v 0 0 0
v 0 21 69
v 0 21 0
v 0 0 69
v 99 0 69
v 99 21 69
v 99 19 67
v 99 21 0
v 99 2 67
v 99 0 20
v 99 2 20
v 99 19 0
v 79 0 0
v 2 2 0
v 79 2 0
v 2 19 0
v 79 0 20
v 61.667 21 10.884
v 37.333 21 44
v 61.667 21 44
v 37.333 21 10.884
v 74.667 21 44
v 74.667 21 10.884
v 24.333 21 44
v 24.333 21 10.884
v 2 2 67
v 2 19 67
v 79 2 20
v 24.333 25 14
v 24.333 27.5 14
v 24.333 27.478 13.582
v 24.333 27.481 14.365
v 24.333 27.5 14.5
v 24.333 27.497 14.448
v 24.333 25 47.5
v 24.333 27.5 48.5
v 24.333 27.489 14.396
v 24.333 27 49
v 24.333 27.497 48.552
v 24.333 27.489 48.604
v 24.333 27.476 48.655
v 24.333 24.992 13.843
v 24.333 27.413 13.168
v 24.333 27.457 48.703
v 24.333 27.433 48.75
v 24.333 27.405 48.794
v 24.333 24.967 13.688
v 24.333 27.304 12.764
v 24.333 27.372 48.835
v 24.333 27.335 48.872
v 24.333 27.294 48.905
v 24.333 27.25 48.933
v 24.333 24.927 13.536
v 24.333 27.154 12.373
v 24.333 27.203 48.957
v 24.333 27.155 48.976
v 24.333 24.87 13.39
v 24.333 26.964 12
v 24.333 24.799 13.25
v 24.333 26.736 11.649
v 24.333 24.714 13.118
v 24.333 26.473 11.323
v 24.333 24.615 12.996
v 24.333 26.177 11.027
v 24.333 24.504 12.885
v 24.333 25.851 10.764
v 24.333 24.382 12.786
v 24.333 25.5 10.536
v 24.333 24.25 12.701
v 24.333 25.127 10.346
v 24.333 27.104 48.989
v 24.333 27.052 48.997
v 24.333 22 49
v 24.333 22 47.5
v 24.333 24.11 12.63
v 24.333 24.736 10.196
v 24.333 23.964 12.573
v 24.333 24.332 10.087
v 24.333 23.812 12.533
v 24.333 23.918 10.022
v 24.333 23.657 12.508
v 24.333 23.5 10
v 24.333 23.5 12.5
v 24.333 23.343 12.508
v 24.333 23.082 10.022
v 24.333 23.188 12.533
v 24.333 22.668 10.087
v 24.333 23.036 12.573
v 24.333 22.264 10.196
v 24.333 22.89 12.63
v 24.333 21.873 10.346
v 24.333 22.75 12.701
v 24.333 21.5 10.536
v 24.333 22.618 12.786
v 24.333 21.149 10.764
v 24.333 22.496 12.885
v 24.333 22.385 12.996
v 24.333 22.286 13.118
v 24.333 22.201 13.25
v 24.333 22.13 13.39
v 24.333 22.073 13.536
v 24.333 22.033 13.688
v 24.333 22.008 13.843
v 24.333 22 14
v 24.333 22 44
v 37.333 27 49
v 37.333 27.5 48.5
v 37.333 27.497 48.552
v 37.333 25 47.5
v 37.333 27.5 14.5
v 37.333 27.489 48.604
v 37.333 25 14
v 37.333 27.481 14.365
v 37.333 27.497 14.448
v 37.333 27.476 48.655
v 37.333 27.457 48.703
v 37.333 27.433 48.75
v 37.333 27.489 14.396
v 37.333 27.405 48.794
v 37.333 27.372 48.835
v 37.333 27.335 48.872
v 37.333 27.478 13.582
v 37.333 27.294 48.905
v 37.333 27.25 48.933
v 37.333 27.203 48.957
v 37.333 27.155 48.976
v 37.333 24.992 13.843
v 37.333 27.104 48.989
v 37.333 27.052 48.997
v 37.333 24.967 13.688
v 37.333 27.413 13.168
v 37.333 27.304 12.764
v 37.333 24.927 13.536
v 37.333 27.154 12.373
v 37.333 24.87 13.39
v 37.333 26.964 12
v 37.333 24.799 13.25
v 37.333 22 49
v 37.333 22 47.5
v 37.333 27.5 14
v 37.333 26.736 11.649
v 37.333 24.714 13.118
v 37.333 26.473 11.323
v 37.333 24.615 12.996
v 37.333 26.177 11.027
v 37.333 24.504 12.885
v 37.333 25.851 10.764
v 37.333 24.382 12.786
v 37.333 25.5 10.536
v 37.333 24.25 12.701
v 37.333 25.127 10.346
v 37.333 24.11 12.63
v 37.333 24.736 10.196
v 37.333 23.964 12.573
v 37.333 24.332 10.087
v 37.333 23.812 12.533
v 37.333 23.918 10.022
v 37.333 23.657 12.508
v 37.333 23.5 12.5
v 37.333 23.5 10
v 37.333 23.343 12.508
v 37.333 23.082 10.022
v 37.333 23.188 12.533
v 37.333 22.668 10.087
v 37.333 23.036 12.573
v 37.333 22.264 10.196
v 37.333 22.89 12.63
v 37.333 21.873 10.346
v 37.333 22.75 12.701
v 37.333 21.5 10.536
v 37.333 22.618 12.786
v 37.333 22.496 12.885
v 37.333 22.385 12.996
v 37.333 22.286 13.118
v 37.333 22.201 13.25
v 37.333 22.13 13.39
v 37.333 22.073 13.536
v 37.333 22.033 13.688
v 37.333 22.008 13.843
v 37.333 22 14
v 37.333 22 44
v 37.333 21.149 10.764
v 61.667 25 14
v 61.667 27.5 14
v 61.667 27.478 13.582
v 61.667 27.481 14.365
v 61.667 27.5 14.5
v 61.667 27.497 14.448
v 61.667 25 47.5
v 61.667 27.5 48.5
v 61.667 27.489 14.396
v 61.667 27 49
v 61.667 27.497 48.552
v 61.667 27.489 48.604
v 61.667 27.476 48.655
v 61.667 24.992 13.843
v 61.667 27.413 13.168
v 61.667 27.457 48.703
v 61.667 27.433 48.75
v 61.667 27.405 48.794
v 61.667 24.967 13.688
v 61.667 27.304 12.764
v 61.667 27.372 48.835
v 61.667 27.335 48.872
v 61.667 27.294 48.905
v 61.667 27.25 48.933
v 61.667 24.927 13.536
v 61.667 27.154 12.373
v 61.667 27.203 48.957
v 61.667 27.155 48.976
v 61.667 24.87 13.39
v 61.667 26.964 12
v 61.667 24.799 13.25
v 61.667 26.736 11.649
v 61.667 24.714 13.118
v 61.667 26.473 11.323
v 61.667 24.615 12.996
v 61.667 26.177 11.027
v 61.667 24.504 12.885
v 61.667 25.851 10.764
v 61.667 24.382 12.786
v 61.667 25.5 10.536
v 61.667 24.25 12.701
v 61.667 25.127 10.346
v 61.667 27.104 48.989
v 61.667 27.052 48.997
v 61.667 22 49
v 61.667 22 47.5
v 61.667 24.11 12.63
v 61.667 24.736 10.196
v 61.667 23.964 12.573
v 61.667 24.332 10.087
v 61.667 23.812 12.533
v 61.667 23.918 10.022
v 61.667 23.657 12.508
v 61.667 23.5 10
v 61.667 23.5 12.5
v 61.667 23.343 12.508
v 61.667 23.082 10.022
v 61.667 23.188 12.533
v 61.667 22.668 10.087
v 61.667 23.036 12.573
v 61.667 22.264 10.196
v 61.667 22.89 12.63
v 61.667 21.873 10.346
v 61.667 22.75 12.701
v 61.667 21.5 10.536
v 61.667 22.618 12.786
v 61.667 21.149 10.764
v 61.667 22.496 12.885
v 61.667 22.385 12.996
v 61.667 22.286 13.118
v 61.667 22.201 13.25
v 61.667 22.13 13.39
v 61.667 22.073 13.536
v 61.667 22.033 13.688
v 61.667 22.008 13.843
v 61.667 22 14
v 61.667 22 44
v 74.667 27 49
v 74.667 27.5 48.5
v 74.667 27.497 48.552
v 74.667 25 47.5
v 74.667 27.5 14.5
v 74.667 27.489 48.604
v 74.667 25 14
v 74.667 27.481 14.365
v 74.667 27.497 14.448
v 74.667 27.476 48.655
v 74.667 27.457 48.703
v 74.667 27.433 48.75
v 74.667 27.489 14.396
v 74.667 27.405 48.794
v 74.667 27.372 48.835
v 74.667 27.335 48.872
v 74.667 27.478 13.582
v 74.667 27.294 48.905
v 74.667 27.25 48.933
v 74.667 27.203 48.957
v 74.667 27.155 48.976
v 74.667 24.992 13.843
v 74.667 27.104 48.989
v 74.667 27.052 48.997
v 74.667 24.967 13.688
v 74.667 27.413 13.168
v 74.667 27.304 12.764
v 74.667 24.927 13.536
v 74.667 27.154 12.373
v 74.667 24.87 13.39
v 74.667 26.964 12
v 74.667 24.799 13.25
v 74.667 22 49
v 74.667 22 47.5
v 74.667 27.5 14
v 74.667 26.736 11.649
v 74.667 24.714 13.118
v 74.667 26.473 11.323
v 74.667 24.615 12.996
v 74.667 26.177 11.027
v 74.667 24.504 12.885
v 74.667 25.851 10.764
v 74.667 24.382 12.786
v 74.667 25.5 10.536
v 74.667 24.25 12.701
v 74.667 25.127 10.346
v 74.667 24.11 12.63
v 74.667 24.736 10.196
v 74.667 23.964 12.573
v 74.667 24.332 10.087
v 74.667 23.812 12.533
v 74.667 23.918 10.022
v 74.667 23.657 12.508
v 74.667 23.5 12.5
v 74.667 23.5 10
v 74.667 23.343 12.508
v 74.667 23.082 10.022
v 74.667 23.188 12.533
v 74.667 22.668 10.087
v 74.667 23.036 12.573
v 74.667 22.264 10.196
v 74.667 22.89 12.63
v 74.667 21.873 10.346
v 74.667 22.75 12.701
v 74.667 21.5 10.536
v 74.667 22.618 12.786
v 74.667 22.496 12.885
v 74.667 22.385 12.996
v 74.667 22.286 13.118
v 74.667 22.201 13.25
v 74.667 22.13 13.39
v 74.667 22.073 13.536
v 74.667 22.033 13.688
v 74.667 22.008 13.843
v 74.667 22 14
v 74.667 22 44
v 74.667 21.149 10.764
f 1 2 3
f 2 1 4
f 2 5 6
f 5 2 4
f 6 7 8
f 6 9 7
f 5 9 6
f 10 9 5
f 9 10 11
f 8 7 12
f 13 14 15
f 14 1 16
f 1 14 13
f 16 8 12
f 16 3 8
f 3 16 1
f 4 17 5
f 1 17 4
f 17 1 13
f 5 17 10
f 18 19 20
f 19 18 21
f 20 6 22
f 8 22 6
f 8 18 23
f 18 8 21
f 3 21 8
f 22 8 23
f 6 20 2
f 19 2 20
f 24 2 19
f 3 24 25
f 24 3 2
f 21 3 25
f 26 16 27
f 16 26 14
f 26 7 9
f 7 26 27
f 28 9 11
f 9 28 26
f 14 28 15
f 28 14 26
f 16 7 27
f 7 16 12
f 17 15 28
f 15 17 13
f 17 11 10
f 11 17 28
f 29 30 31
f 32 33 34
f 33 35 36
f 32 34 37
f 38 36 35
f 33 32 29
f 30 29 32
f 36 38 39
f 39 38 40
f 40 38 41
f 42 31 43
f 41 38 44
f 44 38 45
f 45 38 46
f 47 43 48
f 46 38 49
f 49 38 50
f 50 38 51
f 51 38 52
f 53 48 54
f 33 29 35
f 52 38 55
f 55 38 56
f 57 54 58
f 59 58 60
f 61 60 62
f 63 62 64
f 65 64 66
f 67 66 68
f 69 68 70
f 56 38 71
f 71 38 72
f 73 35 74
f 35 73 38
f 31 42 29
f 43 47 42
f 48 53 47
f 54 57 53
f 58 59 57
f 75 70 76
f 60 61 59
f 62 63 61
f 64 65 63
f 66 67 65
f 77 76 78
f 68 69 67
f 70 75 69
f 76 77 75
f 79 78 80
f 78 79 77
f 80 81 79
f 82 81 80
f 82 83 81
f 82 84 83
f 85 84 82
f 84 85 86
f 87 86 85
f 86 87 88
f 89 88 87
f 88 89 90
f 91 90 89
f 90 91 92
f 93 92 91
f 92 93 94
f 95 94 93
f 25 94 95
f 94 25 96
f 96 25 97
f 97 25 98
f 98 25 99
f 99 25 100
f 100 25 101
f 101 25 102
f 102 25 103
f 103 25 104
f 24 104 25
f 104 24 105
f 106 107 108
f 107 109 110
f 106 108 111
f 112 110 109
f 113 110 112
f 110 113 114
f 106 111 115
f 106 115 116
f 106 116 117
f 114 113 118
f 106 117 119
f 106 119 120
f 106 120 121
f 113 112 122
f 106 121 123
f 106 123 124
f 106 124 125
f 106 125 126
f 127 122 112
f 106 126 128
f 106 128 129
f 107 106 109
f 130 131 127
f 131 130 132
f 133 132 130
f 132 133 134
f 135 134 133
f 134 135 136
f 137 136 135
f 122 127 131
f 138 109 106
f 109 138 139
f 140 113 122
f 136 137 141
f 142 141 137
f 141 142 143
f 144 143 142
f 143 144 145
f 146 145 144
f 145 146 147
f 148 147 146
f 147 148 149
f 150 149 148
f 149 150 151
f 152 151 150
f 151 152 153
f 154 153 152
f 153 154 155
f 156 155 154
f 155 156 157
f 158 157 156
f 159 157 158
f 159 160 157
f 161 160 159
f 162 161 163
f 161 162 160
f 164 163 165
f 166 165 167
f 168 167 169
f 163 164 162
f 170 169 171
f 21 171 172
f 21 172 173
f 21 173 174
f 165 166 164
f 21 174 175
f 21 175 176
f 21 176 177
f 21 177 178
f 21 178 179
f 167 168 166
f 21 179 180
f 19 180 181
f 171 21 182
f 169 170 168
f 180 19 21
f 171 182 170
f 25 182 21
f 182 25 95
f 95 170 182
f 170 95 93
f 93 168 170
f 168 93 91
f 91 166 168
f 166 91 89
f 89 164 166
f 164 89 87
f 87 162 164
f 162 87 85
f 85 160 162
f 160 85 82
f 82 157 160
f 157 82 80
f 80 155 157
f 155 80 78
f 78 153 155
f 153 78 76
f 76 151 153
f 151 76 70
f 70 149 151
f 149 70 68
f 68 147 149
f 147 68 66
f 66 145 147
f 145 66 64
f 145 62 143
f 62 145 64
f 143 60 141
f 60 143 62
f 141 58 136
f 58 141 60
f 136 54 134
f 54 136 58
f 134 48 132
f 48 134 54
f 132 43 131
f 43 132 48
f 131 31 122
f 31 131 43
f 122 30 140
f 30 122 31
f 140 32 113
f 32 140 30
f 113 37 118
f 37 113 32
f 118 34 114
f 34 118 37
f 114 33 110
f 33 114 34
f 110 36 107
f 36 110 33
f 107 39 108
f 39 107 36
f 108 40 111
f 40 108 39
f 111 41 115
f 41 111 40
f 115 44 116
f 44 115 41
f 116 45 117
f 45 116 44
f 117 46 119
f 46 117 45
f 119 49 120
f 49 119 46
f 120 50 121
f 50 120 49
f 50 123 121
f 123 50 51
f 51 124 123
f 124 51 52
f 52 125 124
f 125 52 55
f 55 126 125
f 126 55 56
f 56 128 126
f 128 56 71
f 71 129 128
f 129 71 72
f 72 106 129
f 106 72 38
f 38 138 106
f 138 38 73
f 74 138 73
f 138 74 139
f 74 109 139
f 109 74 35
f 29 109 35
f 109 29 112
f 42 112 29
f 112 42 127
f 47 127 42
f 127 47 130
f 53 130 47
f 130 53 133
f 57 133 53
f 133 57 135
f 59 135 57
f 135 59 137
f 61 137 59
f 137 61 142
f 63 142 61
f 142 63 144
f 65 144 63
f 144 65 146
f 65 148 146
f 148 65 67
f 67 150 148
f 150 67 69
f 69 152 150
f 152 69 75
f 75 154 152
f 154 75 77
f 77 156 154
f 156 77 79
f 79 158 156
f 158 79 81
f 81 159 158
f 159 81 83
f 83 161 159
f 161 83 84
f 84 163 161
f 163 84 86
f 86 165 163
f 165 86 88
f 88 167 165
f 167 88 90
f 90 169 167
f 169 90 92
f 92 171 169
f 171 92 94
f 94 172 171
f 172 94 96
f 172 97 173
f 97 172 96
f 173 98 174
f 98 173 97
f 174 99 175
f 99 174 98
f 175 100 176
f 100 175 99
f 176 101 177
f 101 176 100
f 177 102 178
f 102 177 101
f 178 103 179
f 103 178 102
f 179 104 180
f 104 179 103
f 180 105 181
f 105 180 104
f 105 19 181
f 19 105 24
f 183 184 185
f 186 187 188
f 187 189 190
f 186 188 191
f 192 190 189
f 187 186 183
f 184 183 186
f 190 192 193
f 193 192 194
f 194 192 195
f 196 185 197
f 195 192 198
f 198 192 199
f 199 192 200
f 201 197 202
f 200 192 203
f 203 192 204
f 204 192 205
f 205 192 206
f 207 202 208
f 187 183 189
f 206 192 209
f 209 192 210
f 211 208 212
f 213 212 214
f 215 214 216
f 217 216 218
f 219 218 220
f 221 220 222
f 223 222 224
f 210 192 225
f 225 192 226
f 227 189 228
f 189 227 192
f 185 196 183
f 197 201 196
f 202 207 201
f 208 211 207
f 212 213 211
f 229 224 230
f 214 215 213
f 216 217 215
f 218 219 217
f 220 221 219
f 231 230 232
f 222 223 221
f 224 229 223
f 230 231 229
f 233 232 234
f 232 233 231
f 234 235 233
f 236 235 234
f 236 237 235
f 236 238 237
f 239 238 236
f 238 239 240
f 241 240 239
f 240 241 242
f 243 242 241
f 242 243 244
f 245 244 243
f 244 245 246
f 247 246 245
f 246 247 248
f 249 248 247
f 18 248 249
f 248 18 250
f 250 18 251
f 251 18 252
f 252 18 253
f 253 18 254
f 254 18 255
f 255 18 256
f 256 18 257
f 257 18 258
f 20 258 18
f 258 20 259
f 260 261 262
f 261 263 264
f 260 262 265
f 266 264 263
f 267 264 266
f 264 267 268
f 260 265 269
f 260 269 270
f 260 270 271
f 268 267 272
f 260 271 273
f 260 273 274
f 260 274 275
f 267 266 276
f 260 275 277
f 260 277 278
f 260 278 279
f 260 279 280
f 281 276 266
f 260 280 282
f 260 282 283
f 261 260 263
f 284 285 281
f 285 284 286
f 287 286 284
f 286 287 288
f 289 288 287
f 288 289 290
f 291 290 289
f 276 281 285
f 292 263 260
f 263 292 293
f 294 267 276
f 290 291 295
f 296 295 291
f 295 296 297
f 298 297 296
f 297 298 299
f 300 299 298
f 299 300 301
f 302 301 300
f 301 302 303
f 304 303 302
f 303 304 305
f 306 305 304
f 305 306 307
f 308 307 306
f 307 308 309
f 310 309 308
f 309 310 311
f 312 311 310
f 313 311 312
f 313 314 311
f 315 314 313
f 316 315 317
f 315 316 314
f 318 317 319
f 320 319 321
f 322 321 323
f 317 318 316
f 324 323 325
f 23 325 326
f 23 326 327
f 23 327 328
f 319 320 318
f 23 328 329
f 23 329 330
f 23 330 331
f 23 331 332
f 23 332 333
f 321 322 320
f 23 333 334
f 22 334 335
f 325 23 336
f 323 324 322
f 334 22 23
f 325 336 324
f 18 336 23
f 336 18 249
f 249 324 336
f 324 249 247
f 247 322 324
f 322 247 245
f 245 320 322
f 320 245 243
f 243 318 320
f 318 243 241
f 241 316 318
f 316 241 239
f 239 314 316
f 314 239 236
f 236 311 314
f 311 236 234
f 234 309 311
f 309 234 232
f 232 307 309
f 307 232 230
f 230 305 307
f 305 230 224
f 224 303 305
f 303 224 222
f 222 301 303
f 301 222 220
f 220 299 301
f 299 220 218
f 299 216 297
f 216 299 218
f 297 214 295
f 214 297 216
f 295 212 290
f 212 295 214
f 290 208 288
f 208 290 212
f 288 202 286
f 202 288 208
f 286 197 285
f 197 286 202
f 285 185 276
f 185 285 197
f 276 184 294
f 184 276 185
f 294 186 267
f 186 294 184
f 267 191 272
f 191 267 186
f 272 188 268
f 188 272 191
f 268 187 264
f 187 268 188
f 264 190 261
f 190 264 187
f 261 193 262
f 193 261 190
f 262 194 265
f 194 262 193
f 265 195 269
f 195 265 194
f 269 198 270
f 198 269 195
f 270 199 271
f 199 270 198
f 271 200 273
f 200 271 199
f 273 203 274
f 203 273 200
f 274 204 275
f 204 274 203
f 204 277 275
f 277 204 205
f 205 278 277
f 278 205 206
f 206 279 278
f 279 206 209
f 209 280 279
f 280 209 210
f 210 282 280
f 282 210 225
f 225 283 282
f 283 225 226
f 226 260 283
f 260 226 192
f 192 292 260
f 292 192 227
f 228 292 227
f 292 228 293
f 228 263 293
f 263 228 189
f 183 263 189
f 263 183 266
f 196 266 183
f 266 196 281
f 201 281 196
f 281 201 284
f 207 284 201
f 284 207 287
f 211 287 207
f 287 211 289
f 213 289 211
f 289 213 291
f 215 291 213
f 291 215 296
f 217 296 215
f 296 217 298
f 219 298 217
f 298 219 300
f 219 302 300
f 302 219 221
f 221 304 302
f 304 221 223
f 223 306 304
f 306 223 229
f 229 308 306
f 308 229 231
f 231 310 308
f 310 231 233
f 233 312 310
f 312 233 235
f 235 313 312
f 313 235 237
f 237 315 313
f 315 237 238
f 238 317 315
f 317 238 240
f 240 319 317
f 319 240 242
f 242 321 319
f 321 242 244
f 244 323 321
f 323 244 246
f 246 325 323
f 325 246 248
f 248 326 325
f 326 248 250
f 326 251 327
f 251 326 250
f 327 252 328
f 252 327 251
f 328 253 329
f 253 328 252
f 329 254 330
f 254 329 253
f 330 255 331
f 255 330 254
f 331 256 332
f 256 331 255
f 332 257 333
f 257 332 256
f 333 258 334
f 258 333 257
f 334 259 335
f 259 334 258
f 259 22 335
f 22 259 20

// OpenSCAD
////////////////////
// パラメータ
////////////////////
box_w = 99;   // 幅（X）
box_d = 17;   // 奥行き（Y）
box_h = 69;   // 高さ（Z）
wall  = 2.0;  // 箱の肉厚

// 追加パラメータ
slot_w   = 1;   // 切り欠きの幅（Y方向）
slot_d   = 5;   // 切り欠きの深さ（外周から内側へZ方向）
slot_off = -2;   // 中央から少しずらしたい場合のオフセット (Y方向)

// バッテリーインジケータの切り欠き
indicator_w = 20;   // インジケータの幅（Y方向）
indicator_d = 20;   // インジケータの深さ（外周から内側へZ方向）

// ベルトループ
loop_extrude = 13;   // 押し出し厚さ（ベルト幅方向 X）
loop_h       = 39;   // ループ全高（Y方向に倒して使う）
loop_thick   = 2.5;    // ループ板厚
loop_gap_h   = 35;   // ベルトが通る隙間（X方向の高さ）
loop_r       = 0.5;    // 角丸半径
loop_offsetY = -1.5 + 2*wall;  // 背面からのオフセット
loop_pos_z   = 10;   // 箱底からの取り付け高さ（ループ下端）

////////////////////
// メイン形状
////////////////////
module main_box() {
    difference() {
        difference() {
            cube([box_w, box_d + 2*wall, box_h], center=false);
            translate([wall, wall, 0])
                cube([box_w - wall,
                    box_d ,
                    box_h - wall], center=false);
        }
        translate([box_w-indicator_w, -wall, 0]) {
            cube([indicator_w, 3*wall, indicator_d], center=false);  // インジケータの切り欠き    
        }
    }
}

main_box();
belt_loops();

////////////////////
// ベルトループ断面（元は Y-Z 平面）
////////////////////
// Y=0 が箱背面、Z=0 がループ下端
module belt_loop_profile() {

    outer_w = loop_thick*2 + 3;   // ループ全体の「奥行き」(箱からの出っ張り量)

    // 下部の円弧半径（外側の幅に合わせる）
    bottom_r = outer_w / 2;
    
    // 内側穴の寸法
    inner_w = outer_w - loop_thick * 2;  // 内側の幅
    inner_bottom_r = inner_w / 2;        // 内側下部の円弧半径
    
    // 内側穴の位置
    inner_bottom_y = loop_thick + inner_bottom_r;  // 内側円弧の中心Y
    inner_top_y = loop_thick + loop_gap_h;         // 内側上端Y

    $fn = 60;  // 円弧の滑らかさ

    difference() {
        // 外側形状：下部半円 + 上部角丸四角
        union() {
            // 下部の半円
            translate([bottom_r, bottom_r])
                circle(r=bottom_r);
            
            // 上部の四角形（角丸）
            translate([0, bottom_r])
                offset(r=loop_r)
                offset(delta=-loop_r)
                    square([outer_w, loop_h - bottom_r]);
        }

        // 内側の穴（ベルト通し部）：下部半円 + 上部四角
        union() {
            // 内側下部の半円
            translate([outer_w/2, inner_bottom_y])
                circle(r=inner_bottom_r);
            
            // 内側上部の四角形
            translate([loop_thick, inner_bottom_y])
                square([inner_w, inner_top_y - inner_bottom_y]);
        }

        // 上側の切り欠き
        translate([
            outer_w/2 - slot_w/2 + slot_off,  // X位置（中央基準）
            loop_h - slot_d                    // Y位置（上端から slot_d 分下）
        ])
            square([slot_w, slot_d+1], center=false);
    }
}


// ループ1個：
// 断面(YZ)を X方向に押し出し → Z軸回りに90°回転させて
// 「縦長がY方向・開口が上(＋Z側)」になるようにする
module belt_loop() {
    rotate([90,0,90])                // 断面を寝かせる
        linear_extrude(height = loop_extrude, center=false)
            belt_loop_profile();
}

// 2個並べて背面に沿わせて配置
module belt_loops() {

    // X方向の配置間隔（左右2個）
    space = (box_w - 2*loop_extrude) / 3;

    // 1個目
    translate([space,
               box_d + loop_offsetY,   // 背面から外側へ
               loop_pos_z])            // ループ下端の高さ
        belt_loop();

    // 2個目
    translate([2*space + loop_extrude,
               box_d + loop_offsetY,
               loop_pos_z])
        belt_loop();
}
